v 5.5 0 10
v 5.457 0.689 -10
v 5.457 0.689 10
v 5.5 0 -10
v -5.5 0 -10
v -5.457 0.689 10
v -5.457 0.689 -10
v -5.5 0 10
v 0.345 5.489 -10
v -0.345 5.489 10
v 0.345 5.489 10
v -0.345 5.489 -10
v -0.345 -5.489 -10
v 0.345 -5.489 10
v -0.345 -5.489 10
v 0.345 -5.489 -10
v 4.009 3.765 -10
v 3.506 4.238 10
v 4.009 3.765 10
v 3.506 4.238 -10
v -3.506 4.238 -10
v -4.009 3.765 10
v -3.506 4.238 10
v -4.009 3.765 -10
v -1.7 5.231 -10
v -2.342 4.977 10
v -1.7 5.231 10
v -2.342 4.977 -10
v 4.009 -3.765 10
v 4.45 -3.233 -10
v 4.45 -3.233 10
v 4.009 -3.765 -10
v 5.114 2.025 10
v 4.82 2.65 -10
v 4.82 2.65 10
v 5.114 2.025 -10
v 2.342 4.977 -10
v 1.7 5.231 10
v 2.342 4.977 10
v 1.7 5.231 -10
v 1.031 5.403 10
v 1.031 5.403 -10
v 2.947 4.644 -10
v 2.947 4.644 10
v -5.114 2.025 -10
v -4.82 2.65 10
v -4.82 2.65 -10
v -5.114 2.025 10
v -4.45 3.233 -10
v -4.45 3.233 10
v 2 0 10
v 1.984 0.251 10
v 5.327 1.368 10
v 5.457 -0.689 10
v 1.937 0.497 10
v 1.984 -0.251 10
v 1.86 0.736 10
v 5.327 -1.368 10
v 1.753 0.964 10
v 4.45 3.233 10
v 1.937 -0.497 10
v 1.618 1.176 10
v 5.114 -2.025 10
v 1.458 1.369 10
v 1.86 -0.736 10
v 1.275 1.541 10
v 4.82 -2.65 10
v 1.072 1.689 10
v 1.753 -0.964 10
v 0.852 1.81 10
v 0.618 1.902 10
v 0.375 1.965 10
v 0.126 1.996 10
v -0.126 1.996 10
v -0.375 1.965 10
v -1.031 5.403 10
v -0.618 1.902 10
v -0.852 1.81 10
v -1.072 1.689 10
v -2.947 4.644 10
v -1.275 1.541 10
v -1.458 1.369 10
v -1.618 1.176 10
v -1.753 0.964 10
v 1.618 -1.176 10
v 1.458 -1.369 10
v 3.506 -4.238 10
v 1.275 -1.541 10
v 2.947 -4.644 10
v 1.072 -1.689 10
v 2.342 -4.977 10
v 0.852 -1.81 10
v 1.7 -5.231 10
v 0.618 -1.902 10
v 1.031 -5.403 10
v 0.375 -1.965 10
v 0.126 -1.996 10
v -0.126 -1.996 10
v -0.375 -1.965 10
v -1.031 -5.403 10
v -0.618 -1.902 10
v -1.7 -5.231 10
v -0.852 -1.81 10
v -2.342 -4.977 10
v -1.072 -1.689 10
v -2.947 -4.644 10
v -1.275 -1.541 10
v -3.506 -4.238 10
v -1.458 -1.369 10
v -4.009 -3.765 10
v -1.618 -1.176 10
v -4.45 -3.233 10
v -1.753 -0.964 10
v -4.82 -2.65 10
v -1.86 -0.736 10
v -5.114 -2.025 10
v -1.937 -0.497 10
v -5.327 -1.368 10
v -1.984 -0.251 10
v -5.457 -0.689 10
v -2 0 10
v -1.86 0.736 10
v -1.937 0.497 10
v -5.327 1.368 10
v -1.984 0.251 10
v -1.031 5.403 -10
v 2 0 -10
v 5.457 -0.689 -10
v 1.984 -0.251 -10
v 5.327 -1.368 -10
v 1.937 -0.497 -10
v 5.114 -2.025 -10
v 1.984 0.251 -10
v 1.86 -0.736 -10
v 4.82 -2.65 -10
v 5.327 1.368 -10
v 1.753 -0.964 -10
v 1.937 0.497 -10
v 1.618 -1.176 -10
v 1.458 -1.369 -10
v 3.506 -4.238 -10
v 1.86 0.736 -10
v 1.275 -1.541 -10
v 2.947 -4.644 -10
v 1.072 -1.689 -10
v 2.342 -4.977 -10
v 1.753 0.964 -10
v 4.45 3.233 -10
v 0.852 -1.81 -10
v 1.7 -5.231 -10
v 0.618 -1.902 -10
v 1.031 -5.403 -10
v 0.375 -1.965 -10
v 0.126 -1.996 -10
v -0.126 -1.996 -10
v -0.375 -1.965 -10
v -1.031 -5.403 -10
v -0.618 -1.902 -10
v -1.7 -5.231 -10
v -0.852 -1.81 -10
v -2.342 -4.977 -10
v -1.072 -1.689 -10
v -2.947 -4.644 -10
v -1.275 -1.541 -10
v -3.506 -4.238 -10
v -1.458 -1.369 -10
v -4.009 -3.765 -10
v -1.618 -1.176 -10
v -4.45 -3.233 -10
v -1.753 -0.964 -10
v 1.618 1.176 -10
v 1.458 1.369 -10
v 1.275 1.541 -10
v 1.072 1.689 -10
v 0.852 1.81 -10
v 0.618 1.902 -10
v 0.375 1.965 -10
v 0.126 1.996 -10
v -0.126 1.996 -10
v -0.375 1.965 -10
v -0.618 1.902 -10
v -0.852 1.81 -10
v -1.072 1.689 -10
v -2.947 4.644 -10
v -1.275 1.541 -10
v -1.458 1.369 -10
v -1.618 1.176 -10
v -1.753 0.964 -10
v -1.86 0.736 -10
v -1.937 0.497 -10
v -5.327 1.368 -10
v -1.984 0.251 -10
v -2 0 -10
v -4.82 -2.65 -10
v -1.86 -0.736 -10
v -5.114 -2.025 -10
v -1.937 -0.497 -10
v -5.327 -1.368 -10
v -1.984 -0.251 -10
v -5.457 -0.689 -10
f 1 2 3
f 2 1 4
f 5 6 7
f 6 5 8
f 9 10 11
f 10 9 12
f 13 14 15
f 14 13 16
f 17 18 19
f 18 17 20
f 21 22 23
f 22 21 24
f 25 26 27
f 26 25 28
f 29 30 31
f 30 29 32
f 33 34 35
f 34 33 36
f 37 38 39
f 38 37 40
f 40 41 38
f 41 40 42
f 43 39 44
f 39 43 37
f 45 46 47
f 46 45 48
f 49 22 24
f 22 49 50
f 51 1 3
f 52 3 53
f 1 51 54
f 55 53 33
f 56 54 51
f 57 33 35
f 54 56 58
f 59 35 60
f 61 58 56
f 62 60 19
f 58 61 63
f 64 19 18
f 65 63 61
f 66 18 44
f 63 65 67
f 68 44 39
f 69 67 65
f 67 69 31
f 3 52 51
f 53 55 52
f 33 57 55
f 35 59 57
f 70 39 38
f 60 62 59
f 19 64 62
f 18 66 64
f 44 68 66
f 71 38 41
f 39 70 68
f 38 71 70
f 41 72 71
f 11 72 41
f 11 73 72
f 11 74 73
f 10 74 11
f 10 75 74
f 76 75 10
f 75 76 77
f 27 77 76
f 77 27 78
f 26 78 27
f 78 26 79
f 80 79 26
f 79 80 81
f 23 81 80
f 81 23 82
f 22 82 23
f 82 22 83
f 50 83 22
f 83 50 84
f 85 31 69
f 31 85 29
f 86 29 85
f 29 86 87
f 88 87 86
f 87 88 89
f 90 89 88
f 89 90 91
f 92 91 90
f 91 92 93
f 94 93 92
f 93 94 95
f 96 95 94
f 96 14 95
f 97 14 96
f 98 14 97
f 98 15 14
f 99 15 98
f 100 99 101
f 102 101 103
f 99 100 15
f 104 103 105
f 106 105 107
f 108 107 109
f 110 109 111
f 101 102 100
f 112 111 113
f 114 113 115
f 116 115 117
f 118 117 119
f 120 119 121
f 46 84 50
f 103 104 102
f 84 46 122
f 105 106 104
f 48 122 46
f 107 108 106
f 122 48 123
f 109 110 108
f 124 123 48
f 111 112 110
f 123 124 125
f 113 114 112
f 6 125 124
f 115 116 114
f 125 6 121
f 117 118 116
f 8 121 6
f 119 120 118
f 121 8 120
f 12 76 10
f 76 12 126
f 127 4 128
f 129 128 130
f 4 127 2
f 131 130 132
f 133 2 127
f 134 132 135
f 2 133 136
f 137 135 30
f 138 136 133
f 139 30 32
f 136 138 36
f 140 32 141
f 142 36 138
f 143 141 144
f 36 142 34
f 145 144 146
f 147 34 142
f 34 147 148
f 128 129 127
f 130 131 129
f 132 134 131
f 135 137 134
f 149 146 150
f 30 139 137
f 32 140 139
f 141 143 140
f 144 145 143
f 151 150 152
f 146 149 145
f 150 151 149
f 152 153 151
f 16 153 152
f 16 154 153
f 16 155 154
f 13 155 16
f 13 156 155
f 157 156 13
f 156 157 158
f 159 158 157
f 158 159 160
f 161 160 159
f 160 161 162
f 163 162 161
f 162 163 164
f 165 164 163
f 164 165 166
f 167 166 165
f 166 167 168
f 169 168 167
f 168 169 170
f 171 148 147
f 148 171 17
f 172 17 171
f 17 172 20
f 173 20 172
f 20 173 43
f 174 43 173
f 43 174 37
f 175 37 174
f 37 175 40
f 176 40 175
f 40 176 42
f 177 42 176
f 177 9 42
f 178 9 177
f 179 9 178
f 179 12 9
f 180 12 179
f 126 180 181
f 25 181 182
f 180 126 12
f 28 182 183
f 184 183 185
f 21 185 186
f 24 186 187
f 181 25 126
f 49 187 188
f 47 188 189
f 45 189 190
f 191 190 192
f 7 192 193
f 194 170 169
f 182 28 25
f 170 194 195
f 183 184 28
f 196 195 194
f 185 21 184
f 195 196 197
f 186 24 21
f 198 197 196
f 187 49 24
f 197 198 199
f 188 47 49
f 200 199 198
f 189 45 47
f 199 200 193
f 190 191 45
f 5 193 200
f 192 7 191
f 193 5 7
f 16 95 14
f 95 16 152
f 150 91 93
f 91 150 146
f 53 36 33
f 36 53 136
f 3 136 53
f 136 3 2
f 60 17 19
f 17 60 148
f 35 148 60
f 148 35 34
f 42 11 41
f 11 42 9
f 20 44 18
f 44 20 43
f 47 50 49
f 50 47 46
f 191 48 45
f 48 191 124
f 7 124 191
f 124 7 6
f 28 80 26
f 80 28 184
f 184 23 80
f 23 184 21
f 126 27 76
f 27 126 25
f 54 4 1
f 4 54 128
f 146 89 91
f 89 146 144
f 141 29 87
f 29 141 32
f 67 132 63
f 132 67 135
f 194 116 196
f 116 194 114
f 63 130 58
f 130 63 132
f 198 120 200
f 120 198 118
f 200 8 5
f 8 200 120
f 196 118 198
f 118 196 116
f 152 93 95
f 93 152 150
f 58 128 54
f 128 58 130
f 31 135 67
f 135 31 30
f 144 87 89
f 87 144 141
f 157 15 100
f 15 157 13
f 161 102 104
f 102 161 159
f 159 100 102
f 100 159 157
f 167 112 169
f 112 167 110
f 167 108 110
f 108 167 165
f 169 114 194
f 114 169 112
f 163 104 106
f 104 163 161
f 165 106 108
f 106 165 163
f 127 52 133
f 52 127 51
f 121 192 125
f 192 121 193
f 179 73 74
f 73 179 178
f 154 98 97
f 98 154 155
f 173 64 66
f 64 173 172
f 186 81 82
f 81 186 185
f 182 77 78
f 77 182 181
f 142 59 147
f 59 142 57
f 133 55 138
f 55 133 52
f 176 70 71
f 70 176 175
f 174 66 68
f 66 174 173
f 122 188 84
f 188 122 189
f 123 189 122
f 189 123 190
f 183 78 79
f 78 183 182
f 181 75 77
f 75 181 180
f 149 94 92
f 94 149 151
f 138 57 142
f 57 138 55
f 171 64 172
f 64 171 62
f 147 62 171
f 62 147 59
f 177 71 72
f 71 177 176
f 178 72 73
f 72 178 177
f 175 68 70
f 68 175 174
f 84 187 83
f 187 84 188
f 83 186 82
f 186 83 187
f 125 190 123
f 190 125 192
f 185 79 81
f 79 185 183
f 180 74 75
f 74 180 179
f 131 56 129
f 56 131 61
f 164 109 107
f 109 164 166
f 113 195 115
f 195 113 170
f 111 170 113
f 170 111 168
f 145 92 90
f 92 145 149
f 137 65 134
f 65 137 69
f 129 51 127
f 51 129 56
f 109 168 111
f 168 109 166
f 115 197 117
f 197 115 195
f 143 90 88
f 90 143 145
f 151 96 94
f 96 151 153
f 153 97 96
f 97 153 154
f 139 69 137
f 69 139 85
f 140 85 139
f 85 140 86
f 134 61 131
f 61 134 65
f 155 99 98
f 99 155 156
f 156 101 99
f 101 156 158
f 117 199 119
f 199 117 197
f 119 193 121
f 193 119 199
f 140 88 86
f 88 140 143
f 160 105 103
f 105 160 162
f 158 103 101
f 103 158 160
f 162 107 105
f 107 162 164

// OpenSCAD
$fn = 50;


difference() {
	union() {
		translate(v = [0, 0, -10.0000000000]) {
			cylinder(h = 20, r = 5.5000000000);
		}
	}
	union() {
		translate(v = [0, 0, -100.0000000000]) {
			cylinder(h = 200, r = 2);
		}
	}
}
